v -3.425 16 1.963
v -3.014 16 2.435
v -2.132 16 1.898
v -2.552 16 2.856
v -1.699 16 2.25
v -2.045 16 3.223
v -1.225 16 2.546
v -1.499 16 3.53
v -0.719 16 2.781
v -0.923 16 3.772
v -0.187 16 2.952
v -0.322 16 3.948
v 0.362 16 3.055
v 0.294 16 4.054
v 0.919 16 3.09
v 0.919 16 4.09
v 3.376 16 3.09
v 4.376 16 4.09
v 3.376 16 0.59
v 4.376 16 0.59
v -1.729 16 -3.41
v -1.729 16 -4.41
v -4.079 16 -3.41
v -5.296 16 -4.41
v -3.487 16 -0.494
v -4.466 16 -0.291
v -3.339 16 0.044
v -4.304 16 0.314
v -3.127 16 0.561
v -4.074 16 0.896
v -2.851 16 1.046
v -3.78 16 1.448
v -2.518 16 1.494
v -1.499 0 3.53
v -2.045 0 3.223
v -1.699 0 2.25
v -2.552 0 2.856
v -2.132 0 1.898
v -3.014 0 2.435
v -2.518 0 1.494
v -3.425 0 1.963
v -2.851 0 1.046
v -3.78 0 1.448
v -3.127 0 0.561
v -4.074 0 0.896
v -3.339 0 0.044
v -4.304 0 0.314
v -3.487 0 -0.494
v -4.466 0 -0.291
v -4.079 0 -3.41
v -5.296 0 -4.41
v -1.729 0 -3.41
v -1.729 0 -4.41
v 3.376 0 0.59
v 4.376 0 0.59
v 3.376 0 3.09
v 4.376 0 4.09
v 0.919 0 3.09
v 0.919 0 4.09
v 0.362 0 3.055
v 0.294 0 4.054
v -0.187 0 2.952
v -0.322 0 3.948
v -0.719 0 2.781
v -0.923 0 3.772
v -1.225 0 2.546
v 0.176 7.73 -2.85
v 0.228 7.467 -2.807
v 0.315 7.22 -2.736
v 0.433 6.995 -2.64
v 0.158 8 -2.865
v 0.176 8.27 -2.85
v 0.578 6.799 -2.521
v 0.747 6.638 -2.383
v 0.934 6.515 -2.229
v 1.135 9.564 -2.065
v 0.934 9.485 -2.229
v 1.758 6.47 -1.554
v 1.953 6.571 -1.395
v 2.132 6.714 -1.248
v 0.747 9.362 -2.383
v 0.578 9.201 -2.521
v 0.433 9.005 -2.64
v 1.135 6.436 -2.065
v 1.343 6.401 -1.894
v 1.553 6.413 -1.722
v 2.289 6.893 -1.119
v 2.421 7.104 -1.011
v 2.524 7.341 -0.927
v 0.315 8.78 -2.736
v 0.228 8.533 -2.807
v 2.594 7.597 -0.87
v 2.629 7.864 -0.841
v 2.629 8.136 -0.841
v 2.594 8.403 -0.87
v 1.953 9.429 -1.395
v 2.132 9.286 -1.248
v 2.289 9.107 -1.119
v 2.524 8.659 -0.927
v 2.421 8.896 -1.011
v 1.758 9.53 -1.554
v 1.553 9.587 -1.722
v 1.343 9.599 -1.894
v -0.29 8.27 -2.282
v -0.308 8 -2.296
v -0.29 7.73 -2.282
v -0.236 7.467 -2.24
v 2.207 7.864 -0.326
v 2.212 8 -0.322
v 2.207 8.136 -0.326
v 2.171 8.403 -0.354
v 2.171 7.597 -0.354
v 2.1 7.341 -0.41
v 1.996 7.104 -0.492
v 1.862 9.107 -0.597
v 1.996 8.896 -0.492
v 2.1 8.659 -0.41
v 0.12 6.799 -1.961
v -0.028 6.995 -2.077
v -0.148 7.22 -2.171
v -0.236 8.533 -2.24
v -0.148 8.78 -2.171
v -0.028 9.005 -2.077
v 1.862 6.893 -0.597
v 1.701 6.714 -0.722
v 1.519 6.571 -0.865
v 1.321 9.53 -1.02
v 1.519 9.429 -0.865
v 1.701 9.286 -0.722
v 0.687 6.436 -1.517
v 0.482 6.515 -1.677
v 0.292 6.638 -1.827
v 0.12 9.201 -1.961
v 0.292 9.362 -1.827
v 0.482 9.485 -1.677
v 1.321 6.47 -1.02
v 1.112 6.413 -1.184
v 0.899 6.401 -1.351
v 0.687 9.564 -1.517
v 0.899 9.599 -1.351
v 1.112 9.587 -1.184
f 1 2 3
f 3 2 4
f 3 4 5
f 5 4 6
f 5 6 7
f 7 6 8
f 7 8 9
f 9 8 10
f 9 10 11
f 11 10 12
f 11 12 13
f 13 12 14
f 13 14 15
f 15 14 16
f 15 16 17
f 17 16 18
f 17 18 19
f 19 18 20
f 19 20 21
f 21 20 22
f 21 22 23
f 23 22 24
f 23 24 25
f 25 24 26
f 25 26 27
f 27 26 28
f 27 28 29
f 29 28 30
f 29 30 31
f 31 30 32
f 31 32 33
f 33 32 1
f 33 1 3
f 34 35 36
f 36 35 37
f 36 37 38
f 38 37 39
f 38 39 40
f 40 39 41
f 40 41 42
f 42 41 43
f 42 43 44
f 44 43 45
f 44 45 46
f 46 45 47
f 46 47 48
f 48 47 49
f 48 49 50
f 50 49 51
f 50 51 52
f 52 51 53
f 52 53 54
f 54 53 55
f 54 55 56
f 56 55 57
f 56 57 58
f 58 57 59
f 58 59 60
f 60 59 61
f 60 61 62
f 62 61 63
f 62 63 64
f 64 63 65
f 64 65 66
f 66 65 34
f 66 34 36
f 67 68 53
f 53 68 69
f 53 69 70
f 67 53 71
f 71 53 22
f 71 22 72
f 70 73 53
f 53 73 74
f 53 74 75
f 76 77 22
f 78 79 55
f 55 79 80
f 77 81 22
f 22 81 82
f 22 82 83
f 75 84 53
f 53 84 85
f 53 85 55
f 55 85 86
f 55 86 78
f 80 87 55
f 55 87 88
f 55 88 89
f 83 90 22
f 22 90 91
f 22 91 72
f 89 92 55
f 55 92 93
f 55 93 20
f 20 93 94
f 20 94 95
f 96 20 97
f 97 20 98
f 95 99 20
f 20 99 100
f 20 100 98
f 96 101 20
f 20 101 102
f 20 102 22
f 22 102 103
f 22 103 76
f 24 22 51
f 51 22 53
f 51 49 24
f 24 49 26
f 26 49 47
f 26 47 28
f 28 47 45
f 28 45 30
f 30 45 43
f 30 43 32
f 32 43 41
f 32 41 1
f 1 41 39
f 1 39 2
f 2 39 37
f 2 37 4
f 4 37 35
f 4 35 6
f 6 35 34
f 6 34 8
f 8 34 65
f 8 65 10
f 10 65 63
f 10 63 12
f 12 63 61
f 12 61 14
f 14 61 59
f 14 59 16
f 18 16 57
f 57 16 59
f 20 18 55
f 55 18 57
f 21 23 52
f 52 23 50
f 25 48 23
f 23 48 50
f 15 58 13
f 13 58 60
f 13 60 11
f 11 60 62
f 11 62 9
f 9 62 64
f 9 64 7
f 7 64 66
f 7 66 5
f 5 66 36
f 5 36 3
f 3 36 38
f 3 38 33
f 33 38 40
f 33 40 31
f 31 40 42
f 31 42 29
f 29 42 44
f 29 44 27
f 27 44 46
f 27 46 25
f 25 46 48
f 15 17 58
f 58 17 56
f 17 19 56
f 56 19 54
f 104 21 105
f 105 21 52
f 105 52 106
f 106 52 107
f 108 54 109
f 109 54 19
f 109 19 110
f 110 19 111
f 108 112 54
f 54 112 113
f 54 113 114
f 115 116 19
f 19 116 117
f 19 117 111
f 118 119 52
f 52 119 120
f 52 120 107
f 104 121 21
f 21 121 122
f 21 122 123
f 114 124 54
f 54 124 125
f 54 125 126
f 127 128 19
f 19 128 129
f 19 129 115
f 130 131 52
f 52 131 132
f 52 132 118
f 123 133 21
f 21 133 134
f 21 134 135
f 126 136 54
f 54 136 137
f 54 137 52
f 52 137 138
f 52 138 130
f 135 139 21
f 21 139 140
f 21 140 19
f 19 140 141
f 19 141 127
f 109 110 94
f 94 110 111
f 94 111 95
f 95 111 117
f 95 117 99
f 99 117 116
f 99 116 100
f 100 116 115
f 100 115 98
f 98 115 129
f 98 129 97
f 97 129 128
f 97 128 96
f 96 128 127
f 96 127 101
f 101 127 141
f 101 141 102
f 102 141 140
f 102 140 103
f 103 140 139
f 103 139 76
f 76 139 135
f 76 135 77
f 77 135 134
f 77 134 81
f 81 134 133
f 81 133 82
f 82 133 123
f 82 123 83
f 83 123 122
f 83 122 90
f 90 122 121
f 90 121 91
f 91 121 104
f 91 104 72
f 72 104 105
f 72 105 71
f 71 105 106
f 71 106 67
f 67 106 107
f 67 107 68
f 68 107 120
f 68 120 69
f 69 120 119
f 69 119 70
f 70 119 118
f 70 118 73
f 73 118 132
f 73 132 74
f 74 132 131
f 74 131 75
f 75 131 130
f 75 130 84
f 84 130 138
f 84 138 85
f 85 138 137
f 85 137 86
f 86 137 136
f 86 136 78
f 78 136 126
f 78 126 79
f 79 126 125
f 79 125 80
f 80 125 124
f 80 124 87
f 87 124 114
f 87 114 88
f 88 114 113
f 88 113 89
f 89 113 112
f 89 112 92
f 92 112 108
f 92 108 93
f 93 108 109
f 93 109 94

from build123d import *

# Parameters (mm, degrees)
BOSS_EXTRUDE1_DEPTH = 16
CUT_EXTRUDE1_REACH  = 10.836
SKETCH2_R           = 1.6


with BuildPart() as part:
    # Sketch1 → Boss-Extrude1 (new body)
    with BuildSketch(Plane(origin=(0, 0, 0), x_dir=(1, 0, 0), z_dir=(0, 1, 0))):
        with BuildLine():
            Line((-1.728929985, 4.409979173), (-5.295587342, 4.409979173))
            ThreePointArc((-5.295587342, 4.409979173), (-4.887048333, 2.349132427), (-4.465862239, 0.290833199))
            ThreePointArc((-4.465862239, 0.290833199), (-2.551857479, -2.856477369), (0.919071585, -4.090020827))
            Line((0.919071585, -4.090020827), (4.376171699, -4.090020827))
            Line((4.376171699, -4.090020827), (4.376171699, -0.590020827))
            Line((4.376171699, -0.590020827), (-1.728929985, 4.409979173))
        make_face()
        with BuildLine():
            Line((-1.728929985, 3.409979173), (3.376171699, -0.590020827))
            Line((3.376171699, -0.590020827), (3.376171699, -3.090020827))
            Line((3.376171699, -3.090020827), (0.919071585, -3.090020827))
            ThreePointArc((0.919071585, -3.090020827), (-1.920779468, -2.080757998), (-3.486783362, 0.494314286))
            ThreePointArc((-3.486783362, 0.494314286), (-3.786316073, 1.951500554), (-4.079491423, 3.409979173))
            Line((-4.079491423, 3.409979173), (-1.728929985, 3.409979173))
        make_face(mode=Mode.SUBTRACT)
    extrude(amount=BOSS_EXTRUDE1_DEPTH)

    # Cut-Extrude1: up to this face of the body (flat: up to its plane)
    cut_extrude1_end = Plane(part.part.faces().sort_by_distance((0.823620857, 8, -1.409979173))[0])
    # Sketch2 → Cut-Extrude1 (cut, up to the picked face)
    with BuildSketch(Plane(origin=(1.467645419, 0, -1.792024904), x_dir=(-0.773651844, 0, -0.633610941), z_dir=(0.633610941, 0, -0.773651844)), mode=Mode.PRIVATE) as cut_extrude1_sk1:
        with Locations((0.093080992, 8)):
            Circle(SKETCH2_R)
    cut_extrude1_tool1 = split(extrude(cut_extrude1_sk1.sketch, amount=-CUT_EXTRUDE1_REACH, mode=Mode.PRIVATE), bisect_by=cut_extrude1_end, keep=Keep.BOTH, mode=Mode.PRIVATE)
    add(cut_extrude1_tool1.solids().sort_by_distance((1.395633, 8, -1.851002))[0], mode=Mode.SUBTRACT)


solid = part.part
